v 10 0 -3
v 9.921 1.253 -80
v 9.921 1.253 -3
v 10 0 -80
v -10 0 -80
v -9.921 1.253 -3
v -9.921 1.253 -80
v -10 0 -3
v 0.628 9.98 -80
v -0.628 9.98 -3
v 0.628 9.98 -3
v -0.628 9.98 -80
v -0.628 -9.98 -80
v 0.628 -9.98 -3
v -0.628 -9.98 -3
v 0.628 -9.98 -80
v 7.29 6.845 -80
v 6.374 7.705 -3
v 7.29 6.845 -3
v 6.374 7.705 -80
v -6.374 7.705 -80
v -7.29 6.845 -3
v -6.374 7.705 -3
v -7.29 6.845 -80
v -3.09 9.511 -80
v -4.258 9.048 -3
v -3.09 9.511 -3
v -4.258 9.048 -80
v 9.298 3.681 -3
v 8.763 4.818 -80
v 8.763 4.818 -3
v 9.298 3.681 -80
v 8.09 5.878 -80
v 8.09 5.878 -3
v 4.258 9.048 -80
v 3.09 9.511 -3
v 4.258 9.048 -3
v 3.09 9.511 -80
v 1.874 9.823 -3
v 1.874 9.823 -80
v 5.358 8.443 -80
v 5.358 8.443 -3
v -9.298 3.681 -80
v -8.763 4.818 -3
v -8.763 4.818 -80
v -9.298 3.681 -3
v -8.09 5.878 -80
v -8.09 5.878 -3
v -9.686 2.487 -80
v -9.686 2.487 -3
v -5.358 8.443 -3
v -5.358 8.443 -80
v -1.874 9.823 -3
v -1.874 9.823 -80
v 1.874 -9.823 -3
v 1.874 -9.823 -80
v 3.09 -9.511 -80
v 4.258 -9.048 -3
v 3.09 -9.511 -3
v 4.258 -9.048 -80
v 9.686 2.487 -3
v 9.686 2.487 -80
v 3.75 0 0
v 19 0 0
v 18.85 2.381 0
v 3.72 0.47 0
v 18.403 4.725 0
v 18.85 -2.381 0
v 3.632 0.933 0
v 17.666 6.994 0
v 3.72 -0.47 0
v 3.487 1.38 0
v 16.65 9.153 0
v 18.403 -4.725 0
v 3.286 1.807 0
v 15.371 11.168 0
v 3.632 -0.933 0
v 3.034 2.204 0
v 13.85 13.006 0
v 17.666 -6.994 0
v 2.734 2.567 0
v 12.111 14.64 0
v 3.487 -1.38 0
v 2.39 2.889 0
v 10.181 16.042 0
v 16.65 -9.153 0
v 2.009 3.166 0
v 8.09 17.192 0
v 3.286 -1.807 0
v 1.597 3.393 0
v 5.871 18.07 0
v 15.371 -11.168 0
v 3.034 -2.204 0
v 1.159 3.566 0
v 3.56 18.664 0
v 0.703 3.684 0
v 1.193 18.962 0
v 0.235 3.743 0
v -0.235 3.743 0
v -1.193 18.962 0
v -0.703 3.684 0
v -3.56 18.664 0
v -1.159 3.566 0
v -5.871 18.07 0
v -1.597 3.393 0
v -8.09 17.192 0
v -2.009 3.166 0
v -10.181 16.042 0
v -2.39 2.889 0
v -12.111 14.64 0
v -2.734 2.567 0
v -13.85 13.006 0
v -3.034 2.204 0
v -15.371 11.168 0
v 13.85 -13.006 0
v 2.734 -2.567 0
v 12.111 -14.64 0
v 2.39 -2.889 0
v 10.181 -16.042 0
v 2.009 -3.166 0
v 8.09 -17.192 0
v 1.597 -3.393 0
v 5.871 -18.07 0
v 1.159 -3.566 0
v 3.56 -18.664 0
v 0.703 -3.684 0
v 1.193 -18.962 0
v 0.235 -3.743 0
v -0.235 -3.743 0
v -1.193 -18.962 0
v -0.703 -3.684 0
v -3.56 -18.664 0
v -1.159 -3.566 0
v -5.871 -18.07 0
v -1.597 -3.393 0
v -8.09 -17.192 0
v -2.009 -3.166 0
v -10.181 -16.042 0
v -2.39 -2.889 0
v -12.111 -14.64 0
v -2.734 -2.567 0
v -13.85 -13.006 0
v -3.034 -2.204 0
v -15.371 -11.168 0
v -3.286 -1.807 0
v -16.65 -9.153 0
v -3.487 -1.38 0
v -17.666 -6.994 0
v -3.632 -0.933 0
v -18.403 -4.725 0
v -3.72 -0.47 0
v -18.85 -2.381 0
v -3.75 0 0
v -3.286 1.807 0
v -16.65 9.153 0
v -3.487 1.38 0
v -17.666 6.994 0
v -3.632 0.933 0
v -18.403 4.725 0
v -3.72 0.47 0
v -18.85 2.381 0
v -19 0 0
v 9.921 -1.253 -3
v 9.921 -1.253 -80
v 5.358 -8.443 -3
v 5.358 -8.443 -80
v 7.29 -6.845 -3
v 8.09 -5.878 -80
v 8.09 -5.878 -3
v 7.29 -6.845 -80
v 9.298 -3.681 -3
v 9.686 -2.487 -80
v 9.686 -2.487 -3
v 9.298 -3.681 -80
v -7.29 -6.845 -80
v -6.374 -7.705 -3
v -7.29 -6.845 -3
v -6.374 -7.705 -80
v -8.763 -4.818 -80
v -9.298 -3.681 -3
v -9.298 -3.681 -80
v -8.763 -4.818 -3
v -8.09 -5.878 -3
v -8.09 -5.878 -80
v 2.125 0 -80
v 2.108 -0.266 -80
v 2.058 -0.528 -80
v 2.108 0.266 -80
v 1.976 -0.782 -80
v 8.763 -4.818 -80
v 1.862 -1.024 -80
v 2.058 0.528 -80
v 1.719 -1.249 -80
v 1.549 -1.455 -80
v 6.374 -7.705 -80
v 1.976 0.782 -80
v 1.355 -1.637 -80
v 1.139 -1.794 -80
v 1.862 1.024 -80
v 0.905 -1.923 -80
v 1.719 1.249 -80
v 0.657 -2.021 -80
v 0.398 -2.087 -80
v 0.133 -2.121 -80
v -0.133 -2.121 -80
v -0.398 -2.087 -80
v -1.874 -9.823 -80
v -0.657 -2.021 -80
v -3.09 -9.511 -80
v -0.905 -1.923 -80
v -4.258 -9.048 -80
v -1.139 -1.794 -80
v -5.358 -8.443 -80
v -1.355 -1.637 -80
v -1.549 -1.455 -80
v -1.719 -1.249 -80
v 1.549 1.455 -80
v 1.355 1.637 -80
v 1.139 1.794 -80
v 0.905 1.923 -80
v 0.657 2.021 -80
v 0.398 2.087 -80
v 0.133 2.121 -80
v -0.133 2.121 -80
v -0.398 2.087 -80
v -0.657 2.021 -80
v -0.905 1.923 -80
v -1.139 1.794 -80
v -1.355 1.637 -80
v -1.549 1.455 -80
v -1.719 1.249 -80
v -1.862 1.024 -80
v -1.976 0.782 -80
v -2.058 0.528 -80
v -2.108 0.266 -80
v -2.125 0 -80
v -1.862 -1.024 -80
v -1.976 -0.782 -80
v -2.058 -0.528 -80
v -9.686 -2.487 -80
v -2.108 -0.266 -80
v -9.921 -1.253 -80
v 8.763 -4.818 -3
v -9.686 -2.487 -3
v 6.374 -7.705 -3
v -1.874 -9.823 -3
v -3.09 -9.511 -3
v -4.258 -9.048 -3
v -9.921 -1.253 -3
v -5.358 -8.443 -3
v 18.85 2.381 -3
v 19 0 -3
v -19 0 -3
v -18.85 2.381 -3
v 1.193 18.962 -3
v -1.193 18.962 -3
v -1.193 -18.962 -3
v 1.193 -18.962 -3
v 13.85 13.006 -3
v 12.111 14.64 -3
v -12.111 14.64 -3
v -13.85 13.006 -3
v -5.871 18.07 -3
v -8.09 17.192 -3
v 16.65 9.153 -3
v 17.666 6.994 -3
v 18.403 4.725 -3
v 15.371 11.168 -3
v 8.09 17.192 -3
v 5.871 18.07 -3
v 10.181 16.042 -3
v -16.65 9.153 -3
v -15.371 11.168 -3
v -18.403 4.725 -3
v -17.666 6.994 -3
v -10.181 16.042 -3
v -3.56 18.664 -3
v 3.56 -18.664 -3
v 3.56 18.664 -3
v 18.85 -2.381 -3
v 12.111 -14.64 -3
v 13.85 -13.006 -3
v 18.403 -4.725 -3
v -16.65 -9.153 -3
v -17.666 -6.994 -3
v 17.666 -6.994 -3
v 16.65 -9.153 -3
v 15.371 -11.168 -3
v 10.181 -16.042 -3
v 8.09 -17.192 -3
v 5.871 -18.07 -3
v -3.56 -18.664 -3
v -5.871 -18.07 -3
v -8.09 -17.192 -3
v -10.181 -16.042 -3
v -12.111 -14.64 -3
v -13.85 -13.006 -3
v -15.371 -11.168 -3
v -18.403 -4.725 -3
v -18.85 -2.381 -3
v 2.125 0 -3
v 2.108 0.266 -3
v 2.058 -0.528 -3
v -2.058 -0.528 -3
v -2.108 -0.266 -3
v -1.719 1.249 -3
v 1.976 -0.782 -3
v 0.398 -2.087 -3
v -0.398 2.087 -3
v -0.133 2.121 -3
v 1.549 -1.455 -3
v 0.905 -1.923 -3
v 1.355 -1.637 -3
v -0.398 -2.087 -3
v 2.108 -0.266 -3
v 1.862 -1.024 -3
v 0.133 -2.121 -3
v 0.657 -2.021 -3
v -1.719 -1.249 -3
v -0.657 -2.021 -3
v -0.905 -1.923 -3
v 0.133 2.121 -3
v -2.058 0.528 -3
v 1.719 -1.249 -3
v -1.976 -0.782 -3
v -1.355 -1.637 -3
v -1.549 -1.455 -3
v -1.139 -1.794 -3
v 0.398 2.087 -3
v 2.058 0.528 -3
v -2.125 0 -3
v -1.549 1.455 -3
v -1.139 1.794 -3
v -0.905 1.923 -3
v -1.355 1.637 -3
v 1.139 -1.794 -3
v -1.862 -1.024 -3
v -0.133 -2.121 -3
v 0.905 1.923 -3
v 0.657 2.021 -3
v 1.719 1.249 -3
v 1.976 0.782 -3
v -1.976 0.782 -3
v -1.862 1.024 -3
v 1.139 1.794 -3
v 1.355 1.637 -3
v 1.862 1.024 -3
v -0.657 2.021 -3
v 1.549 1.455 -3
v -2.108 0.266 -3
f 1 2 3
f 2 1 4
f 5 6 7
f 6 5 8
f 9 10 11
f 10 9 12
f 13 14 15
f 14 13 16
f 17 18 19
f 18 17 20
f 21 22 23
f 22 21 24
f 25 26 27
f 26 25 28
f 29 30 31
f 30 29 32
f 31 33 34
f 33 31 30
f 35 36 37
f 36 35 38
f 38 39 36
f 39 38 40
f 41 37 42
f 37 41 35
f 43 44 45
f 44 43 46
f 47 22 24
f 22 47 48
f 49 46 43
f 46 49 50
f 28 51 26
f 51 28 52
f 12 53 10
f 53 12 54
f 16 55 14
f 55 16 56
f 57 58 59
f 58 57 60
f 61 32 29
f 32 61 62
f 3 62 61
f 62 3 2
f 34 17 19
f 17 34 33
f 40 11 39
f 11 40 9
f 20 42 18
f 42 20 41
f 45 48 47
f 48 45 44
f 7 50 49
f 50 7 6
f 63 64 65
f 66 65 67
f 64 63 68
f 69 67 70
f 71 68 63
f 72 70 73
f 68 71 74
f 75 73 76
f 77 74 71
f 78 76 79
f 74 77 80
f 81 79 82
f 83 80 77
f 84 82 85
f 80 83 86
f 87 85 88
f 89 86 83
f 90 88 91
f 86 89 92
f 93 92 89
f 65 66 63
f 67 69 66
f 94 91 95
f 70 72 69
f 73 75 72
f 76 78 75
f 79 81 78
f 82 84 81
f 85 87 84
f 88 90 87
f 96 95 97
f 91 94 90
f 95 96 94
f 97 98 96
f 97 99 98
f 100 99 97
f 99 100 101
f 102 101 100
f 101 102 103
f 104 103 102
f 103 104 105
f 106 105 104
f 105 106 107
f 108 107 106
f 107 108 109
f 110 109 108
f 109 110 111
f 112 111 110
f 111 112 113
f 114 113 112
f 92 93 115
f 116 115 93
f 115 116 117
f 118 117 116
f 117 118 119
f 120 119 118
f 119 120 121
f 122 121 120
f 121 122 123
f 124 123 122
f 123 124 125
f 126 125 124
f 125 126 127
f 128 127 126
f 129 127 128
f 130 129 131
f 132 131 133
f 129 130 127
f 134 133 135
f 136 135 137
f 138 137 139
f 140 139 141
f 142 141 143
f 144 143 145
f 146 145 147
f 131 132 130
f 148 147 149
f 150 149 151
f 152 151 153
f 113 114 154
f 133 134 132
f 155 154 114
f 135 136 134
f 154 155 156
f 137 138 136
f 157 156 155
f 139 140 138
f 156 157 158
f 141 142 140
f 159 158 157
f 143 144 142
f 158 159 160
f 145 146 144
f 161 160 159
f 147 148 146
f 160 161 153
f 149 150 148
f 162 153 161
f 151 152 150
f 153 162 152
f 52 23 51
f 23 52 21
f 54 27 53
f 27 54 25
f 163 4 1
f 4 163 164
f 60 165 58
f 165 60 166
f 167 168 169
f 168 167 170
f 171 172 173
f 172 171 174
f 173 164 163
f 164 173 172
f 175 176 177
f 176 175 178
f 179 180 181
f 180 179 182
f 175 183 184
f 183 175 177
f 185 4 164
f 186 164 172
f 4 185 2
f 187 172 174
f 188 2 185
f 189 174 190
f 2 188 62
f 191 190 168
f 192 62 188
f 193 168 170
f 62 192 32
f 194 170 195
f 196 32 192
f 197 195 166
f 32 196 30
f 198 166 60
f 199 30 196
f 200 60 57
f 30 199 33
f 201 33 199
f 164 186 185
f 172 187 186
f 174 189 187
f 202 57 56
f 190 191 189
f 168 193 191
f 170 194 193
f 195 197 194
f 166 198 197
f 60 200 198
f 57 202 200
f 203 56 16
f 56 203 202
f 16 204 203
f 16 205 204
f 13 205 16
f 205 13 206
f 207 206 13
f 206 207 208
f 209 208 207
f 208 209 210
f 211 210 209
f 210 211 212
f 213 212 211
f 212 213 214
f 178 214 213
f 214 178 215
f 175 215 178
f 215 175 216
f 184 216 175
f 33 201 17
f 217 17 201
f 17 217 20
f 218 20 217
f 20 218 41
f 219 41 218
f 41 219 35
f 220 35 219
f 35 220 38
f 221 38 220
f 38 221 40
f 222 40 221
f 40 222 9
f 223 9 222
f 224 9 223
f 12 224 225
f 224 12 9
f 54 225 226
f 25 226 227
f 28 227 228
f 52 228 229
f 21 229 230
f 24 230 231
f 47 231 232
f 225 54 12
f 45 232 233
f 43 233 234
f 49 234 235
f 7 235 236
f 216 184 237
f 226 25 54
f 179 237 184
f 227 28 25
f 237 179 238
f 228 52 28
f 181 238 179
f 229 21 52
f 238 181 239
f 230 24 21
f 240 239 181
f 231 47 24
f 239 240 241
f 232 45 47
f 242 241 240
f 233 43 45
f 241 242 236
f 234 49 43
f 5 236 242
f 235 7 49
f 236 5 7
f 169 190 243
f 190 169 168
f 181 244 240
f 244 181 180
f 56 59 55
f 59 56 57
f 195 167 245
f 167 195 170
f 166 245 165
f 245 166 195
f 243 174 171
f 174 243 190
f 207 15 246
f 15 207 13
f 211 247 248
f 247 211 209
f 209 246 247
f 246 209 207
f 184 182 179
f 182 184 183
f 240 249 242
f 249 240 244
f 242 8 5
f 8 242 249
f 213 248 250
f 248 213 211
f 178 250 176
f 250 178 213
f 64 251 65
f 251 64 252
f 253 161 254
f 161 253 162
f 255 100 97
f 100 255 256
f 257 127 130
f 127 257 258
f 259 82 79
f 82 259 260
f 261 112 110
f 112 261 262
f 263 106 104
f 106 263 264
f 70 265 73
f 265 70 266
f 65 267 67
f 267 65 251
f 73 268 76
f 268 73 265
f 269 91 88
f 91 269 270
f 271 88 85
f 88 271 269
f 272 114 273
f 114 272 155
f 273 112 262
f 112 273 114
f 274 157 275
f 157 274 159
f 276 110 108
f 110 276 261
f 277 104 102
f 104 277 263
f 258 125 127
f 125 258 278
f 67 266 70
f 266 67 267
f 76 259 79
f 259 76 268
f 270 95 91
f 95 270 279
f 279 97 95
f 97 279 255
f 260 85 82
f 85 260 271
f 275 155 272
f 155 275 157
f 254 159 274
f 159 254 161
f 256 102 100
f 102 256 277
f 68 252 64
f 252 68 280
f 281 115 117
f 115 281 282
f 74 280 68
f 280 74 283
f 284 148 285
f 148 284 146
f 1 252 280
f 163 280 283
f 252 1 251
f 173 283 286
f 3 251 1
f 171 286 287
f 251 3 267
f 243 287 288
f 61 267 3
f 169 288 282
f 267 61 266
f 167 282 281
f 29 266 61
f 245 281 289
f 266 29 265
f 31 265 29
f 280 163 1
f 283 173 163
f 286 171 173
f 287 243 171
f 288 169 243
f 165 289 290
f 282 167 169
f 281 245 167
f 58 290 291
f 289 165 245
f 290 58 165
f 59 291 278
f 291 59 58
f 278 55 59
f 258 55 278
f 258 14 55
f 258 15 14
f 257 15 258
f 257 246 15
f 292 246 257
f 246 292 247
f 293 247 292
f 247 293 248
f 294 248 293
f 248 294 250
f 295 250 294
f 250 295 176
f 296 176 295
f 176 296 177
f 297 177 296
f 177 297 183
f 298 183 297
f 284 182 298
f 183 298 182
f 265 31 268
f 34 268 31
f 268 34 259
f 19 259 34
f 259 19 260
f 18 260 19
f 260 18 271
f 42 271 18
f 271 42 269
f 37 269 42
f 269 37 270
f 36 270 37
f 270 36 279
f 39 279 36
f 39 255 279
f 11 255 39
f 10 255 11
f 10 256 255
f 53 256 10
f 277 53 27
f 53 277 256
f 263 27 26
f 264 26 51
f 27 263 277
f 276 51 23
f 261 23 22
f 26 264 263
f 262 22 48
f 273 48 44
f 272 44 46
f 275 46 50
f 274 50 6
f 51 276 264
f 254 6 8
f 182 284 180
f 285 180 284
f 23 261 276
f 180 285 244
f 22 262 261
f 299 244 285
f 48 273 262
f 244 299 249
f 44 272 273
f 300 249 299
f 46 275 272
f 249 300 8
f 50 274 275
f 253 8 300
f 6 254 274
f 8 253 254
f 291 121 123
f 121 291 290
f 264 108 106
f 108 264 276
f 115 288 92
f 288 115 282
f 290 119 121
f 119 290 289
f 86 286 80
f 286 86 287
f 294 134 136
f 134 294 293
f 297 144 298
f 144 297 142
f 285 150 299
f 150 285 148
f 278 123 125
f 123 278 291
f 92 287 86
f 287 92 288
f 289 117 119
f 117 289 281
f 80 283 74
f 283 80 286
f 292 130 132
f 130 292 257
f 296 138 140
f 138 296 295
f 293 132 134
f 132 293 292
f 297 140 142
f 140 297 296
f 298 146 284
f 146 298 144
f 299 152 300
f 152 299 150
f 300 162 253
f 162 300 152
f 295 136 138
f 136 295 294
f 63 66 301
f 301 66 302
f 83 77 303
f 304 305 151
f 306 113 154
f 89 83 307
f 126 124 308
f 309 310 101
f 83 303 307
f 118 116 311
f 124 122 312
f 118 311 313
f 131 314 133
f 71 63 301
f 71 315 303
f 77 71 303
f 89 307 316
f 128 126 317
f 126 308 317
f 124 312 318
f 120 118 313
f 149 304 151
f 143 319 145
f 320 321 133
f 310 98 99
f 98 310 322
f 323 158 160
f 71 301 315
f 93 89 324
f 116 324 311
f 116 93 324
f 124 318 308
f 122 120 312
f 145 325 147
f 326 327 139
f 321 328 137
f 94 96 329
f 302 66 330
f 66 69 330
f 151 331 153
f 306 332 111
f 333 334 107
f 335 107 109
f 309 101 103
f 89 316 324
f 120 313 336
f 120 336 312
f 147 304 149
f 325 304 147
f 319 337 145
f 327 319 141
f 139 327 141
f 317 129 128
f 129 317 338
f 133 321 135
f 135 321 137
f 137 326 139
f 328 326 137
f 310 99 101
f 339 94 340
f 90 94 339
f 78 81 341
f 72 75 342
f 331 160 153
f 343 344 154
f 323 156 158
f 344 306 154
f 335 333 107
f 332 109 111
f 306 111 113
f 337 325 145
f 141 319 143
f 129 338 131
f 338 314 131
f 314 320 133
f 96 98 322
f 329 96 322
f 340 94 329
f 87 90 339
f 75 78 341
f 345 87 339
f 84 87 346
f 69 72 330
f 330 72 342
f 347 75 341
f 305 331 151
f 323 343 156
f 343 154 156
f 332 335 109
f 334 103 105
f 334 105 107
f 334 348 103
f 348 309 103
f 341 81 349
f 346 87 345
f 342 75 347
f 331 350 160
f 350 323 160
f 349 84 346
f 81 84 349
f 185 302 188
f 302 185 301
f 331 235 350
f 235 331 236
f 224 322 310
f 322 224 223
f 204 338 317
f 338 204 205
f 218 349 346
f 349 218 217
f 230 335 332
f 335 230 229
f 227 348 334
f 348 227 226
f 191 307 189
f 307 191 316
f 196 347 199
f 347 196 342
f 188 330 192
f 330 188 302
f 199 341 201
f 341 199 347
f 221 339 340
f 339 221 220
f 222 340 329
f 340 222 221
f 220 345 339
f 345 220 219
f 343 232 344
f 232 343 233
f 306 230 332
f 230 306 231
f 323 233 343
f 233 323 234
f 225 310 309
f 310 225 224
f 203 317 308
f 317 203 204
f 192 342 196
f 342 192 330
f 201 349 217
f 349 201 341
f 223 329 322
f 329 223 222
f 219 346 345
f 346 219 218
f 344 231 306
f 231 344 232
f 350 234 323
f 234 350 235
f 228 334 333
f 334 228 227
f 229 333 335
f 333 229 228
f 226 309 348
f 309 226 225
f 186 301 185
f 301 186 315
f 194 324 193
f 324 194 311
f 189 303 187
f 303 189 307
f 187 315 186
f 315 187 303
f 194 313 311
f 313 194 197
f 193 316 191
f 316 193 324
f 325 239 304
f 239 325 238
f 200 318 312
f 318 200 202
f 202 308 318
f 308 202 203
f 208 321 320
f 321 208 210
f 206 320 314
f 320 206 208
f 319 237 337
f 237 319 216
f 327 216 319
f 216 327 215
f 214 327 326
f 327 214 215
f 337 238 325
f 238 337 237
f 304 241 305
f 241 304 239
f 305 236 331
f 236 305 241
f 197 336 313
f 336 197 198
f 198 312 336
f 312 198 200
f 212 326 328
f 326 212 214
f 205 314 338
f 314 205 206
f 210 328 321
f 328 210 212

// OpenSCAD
$fn = 50;


difference() {
	union() {
		translate(v = [0, 0, -80.0000000000]) {
			cylinder(h = 80, r = 10.0000000000);
		}
		translate(v = [0, 0, -3.0000000000]) {
			cylinder(h = 3, r = 19.0000000000);
		}
	}
	union() {
		translate(v = [0, 0, 0]) {
			rotate(a = [0, 0, 0]) {
				difference() {
					union() {
						#translate(v = [0, 0, -80.0000000000]) {
							cylinder(h = 80, r = 2.0000000000);
						}
						#translate(v = [0, 0, -3]) {
							cylinder(h = 3, r1 = 2.1250000000, r2 = 3.7500000000);
						}
						#translate(v = [0, 0, -80.0000000000]) {
							cylinder(h = 80, r = 2.1250000000);
						}
						#translate(v = [0, 0, -80.0000000000]) {
							cylinder(h = 80, r = 2.0000000000);
						}
					}
					union();
				}
			}
		}
	}
}
